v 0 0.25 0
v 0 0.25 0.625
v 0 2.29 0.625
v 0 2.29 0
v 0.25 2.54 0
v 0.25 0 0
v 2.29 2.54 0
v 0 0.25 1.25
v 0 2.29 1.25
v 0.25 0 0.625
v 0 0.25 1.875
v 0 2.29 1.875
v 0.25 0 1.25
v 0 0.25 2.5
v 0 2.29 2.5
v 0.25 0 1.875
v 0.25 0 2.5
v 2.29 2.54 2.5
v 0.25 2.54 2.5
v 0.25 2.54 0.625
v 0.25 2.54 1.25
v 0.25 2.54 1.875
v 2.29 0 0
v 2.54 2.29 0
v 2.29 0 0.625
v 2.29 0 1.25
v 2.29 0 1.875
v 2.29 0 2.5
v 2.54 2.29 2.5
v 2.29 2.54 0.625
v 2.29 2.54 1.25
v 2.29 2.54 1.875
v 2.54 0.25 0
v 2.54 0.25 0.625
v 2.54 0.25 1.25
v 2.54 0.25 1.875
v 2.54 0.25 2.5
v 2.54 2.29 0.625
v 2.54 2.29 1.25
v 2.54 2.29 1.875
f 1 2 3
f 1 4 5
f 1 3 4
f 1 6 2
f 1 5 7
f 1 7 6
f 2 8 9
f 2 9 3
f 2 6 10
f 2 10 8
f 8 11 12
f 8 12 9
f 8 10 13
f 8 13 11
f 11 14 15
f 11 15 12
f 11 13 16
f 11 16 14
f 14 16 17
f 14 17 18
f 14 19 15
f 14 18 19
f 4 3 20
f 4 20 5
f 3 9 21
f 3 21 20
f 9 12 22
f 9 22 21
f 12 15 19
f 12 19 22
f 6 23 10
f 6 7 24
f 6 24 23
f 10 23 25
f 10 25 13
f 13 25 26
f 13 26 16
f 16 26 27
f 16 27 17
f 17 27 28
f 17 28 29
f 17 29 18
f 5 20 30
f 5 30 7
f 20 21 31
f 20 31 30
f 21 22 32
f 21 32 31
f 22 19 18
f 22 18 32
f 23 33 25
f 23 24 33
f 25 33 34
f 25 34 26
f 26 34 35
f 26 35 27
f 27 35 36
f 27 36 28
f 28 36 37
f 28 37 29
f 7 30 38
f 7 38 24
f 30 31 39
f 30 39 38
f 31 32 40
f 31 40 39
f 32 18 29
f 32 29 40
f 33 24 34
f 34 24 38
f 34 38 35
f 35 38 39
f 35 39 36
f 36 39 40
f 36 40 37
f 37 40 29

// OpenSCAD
// Start: lazy_union
default_5_default_5();
// End: lazy_union

// Modules.

// 'PartMaterial undef-default - default 5.0'
module default_5_default_5() {
  // 'None : _combine_solids_and_holes'
  union() {
    // 'default : _combine_solids_and_holes'
    union() {
      // 'base : _combine_solids_and_holes'
      union() {
        // 'base'
        linear_extrude(height=2.5, twist=0.0, slices=4, scale=[1.0, 1.0]) {
          polygon(points=[[0.0, 0.25], [0.25, 0.0], [2.29, 0.0], [2.54, 0.25], [2.54, 2.29], [2.29, 2.54], [0.25, 2.54], [0.0, 2.29]]);
        }
      }
    }
  }
} // end module default_5_default_5
